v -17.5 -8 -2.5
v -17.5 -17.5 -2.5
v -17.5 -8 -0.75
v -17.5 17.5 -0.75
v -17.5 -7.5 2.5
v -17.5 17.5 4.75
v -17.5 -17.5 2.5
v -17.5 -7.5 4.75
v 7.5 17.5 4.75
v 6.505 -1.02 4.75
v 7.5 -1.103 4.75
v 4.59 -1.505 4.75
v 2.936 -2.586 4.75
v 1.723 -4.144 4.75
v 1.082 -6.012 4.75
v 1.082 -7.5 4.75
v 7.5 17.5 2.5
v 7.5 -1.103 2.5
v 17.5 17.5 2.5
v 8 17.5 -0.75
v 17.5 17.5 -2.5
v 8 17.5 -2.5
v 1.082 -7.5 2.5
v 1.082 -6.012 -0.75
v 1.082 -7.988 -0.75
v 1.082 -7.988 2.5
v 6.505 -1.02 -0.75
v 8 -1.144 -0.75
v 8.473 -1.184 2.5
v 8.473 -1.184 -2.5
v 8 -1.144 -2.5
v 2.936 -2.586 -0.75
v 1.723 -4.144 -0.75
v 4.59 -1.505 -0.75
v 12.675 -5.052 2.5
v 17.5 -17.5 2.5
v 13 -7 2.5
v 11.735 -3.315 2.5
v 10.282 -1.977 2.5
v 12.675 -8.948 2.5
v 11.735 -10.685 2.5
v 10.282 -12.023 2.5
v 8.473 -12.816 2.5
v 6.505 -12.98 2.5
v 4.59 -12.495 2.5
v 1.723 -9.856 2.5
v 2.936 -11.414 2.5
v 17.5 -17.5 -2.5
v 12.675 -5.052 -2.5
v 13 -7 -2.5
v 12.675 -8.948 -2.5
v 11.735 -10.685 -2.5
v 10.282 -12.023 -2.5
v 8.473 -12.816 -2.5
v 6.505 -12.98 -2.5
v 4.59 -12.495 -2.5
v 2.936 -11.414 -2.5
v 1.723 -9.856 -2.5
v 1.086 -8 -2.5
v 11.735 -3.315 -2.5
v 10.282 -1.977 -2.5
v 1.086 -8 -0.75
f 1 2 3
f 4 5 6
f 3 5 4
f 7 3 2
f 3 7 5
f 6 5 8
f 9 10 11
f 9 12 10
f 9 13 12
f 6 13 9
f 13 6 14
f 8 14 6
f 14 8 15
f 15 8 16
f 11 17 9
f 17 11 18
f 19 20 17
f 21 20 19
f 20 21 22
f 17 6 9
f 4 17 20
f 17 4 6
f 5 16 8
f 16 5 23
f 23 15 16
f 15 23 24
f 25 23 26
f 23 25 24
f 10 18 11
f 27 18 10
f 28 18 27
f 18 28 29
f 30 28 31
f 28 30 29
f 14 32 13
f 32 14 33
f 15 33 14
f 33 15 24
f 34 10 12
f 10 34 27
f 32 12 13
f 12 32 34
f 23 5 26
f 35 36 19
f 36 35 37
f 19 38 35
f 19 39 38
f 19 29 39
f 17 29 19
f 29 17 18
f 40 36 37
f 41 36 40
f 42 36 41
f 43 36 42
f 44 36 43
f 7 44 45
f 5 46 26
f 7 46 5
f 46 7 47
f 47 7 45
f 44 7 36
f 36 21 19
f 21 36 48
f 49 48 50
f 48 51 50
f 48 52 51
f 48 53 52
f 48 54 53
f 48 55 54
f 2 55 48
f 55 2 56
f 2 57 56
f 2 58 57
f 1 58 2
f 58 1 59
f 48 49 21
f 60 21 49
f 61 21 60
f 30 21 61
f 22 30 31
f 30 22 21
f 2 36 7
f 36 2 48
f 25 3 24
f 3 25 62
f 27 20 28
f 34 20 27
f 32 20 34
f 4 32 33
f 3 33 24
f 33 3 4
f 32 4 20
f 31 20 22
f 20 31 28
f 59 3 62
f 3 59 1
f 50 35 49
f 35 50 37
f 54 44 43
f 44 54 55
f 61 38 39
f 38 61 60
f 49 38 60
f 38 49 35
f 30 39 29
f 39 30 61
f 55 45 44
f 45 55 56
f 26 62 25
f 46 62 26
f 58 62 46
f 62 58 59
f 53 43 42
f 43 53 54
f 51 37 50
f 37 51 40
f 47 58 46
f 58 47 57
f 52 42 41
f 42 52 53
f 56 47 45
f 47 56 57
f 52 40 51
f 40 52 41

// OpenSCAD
/* This is the top section of the plate with the hole */
difference() {
    translate([-5,5,3.5])
        cube([25,25, 2.5], true);
    translate([7,-7,0])
        cylinder(15,6,6,true);
}


/* This is the bottom part of the plate, with the
 * bottom part removed (added +1 to the X and Y for
 * the cube to clear the sides and prevent artifacting)
 * and the hole
 */
difference() {    
    cube([35,35,5], true);
    translate([-5,5,-2])
        cube([26,26, 2.5], true);
    translate([7,-7,0])
        cylinder(15,6,6,true);
}
